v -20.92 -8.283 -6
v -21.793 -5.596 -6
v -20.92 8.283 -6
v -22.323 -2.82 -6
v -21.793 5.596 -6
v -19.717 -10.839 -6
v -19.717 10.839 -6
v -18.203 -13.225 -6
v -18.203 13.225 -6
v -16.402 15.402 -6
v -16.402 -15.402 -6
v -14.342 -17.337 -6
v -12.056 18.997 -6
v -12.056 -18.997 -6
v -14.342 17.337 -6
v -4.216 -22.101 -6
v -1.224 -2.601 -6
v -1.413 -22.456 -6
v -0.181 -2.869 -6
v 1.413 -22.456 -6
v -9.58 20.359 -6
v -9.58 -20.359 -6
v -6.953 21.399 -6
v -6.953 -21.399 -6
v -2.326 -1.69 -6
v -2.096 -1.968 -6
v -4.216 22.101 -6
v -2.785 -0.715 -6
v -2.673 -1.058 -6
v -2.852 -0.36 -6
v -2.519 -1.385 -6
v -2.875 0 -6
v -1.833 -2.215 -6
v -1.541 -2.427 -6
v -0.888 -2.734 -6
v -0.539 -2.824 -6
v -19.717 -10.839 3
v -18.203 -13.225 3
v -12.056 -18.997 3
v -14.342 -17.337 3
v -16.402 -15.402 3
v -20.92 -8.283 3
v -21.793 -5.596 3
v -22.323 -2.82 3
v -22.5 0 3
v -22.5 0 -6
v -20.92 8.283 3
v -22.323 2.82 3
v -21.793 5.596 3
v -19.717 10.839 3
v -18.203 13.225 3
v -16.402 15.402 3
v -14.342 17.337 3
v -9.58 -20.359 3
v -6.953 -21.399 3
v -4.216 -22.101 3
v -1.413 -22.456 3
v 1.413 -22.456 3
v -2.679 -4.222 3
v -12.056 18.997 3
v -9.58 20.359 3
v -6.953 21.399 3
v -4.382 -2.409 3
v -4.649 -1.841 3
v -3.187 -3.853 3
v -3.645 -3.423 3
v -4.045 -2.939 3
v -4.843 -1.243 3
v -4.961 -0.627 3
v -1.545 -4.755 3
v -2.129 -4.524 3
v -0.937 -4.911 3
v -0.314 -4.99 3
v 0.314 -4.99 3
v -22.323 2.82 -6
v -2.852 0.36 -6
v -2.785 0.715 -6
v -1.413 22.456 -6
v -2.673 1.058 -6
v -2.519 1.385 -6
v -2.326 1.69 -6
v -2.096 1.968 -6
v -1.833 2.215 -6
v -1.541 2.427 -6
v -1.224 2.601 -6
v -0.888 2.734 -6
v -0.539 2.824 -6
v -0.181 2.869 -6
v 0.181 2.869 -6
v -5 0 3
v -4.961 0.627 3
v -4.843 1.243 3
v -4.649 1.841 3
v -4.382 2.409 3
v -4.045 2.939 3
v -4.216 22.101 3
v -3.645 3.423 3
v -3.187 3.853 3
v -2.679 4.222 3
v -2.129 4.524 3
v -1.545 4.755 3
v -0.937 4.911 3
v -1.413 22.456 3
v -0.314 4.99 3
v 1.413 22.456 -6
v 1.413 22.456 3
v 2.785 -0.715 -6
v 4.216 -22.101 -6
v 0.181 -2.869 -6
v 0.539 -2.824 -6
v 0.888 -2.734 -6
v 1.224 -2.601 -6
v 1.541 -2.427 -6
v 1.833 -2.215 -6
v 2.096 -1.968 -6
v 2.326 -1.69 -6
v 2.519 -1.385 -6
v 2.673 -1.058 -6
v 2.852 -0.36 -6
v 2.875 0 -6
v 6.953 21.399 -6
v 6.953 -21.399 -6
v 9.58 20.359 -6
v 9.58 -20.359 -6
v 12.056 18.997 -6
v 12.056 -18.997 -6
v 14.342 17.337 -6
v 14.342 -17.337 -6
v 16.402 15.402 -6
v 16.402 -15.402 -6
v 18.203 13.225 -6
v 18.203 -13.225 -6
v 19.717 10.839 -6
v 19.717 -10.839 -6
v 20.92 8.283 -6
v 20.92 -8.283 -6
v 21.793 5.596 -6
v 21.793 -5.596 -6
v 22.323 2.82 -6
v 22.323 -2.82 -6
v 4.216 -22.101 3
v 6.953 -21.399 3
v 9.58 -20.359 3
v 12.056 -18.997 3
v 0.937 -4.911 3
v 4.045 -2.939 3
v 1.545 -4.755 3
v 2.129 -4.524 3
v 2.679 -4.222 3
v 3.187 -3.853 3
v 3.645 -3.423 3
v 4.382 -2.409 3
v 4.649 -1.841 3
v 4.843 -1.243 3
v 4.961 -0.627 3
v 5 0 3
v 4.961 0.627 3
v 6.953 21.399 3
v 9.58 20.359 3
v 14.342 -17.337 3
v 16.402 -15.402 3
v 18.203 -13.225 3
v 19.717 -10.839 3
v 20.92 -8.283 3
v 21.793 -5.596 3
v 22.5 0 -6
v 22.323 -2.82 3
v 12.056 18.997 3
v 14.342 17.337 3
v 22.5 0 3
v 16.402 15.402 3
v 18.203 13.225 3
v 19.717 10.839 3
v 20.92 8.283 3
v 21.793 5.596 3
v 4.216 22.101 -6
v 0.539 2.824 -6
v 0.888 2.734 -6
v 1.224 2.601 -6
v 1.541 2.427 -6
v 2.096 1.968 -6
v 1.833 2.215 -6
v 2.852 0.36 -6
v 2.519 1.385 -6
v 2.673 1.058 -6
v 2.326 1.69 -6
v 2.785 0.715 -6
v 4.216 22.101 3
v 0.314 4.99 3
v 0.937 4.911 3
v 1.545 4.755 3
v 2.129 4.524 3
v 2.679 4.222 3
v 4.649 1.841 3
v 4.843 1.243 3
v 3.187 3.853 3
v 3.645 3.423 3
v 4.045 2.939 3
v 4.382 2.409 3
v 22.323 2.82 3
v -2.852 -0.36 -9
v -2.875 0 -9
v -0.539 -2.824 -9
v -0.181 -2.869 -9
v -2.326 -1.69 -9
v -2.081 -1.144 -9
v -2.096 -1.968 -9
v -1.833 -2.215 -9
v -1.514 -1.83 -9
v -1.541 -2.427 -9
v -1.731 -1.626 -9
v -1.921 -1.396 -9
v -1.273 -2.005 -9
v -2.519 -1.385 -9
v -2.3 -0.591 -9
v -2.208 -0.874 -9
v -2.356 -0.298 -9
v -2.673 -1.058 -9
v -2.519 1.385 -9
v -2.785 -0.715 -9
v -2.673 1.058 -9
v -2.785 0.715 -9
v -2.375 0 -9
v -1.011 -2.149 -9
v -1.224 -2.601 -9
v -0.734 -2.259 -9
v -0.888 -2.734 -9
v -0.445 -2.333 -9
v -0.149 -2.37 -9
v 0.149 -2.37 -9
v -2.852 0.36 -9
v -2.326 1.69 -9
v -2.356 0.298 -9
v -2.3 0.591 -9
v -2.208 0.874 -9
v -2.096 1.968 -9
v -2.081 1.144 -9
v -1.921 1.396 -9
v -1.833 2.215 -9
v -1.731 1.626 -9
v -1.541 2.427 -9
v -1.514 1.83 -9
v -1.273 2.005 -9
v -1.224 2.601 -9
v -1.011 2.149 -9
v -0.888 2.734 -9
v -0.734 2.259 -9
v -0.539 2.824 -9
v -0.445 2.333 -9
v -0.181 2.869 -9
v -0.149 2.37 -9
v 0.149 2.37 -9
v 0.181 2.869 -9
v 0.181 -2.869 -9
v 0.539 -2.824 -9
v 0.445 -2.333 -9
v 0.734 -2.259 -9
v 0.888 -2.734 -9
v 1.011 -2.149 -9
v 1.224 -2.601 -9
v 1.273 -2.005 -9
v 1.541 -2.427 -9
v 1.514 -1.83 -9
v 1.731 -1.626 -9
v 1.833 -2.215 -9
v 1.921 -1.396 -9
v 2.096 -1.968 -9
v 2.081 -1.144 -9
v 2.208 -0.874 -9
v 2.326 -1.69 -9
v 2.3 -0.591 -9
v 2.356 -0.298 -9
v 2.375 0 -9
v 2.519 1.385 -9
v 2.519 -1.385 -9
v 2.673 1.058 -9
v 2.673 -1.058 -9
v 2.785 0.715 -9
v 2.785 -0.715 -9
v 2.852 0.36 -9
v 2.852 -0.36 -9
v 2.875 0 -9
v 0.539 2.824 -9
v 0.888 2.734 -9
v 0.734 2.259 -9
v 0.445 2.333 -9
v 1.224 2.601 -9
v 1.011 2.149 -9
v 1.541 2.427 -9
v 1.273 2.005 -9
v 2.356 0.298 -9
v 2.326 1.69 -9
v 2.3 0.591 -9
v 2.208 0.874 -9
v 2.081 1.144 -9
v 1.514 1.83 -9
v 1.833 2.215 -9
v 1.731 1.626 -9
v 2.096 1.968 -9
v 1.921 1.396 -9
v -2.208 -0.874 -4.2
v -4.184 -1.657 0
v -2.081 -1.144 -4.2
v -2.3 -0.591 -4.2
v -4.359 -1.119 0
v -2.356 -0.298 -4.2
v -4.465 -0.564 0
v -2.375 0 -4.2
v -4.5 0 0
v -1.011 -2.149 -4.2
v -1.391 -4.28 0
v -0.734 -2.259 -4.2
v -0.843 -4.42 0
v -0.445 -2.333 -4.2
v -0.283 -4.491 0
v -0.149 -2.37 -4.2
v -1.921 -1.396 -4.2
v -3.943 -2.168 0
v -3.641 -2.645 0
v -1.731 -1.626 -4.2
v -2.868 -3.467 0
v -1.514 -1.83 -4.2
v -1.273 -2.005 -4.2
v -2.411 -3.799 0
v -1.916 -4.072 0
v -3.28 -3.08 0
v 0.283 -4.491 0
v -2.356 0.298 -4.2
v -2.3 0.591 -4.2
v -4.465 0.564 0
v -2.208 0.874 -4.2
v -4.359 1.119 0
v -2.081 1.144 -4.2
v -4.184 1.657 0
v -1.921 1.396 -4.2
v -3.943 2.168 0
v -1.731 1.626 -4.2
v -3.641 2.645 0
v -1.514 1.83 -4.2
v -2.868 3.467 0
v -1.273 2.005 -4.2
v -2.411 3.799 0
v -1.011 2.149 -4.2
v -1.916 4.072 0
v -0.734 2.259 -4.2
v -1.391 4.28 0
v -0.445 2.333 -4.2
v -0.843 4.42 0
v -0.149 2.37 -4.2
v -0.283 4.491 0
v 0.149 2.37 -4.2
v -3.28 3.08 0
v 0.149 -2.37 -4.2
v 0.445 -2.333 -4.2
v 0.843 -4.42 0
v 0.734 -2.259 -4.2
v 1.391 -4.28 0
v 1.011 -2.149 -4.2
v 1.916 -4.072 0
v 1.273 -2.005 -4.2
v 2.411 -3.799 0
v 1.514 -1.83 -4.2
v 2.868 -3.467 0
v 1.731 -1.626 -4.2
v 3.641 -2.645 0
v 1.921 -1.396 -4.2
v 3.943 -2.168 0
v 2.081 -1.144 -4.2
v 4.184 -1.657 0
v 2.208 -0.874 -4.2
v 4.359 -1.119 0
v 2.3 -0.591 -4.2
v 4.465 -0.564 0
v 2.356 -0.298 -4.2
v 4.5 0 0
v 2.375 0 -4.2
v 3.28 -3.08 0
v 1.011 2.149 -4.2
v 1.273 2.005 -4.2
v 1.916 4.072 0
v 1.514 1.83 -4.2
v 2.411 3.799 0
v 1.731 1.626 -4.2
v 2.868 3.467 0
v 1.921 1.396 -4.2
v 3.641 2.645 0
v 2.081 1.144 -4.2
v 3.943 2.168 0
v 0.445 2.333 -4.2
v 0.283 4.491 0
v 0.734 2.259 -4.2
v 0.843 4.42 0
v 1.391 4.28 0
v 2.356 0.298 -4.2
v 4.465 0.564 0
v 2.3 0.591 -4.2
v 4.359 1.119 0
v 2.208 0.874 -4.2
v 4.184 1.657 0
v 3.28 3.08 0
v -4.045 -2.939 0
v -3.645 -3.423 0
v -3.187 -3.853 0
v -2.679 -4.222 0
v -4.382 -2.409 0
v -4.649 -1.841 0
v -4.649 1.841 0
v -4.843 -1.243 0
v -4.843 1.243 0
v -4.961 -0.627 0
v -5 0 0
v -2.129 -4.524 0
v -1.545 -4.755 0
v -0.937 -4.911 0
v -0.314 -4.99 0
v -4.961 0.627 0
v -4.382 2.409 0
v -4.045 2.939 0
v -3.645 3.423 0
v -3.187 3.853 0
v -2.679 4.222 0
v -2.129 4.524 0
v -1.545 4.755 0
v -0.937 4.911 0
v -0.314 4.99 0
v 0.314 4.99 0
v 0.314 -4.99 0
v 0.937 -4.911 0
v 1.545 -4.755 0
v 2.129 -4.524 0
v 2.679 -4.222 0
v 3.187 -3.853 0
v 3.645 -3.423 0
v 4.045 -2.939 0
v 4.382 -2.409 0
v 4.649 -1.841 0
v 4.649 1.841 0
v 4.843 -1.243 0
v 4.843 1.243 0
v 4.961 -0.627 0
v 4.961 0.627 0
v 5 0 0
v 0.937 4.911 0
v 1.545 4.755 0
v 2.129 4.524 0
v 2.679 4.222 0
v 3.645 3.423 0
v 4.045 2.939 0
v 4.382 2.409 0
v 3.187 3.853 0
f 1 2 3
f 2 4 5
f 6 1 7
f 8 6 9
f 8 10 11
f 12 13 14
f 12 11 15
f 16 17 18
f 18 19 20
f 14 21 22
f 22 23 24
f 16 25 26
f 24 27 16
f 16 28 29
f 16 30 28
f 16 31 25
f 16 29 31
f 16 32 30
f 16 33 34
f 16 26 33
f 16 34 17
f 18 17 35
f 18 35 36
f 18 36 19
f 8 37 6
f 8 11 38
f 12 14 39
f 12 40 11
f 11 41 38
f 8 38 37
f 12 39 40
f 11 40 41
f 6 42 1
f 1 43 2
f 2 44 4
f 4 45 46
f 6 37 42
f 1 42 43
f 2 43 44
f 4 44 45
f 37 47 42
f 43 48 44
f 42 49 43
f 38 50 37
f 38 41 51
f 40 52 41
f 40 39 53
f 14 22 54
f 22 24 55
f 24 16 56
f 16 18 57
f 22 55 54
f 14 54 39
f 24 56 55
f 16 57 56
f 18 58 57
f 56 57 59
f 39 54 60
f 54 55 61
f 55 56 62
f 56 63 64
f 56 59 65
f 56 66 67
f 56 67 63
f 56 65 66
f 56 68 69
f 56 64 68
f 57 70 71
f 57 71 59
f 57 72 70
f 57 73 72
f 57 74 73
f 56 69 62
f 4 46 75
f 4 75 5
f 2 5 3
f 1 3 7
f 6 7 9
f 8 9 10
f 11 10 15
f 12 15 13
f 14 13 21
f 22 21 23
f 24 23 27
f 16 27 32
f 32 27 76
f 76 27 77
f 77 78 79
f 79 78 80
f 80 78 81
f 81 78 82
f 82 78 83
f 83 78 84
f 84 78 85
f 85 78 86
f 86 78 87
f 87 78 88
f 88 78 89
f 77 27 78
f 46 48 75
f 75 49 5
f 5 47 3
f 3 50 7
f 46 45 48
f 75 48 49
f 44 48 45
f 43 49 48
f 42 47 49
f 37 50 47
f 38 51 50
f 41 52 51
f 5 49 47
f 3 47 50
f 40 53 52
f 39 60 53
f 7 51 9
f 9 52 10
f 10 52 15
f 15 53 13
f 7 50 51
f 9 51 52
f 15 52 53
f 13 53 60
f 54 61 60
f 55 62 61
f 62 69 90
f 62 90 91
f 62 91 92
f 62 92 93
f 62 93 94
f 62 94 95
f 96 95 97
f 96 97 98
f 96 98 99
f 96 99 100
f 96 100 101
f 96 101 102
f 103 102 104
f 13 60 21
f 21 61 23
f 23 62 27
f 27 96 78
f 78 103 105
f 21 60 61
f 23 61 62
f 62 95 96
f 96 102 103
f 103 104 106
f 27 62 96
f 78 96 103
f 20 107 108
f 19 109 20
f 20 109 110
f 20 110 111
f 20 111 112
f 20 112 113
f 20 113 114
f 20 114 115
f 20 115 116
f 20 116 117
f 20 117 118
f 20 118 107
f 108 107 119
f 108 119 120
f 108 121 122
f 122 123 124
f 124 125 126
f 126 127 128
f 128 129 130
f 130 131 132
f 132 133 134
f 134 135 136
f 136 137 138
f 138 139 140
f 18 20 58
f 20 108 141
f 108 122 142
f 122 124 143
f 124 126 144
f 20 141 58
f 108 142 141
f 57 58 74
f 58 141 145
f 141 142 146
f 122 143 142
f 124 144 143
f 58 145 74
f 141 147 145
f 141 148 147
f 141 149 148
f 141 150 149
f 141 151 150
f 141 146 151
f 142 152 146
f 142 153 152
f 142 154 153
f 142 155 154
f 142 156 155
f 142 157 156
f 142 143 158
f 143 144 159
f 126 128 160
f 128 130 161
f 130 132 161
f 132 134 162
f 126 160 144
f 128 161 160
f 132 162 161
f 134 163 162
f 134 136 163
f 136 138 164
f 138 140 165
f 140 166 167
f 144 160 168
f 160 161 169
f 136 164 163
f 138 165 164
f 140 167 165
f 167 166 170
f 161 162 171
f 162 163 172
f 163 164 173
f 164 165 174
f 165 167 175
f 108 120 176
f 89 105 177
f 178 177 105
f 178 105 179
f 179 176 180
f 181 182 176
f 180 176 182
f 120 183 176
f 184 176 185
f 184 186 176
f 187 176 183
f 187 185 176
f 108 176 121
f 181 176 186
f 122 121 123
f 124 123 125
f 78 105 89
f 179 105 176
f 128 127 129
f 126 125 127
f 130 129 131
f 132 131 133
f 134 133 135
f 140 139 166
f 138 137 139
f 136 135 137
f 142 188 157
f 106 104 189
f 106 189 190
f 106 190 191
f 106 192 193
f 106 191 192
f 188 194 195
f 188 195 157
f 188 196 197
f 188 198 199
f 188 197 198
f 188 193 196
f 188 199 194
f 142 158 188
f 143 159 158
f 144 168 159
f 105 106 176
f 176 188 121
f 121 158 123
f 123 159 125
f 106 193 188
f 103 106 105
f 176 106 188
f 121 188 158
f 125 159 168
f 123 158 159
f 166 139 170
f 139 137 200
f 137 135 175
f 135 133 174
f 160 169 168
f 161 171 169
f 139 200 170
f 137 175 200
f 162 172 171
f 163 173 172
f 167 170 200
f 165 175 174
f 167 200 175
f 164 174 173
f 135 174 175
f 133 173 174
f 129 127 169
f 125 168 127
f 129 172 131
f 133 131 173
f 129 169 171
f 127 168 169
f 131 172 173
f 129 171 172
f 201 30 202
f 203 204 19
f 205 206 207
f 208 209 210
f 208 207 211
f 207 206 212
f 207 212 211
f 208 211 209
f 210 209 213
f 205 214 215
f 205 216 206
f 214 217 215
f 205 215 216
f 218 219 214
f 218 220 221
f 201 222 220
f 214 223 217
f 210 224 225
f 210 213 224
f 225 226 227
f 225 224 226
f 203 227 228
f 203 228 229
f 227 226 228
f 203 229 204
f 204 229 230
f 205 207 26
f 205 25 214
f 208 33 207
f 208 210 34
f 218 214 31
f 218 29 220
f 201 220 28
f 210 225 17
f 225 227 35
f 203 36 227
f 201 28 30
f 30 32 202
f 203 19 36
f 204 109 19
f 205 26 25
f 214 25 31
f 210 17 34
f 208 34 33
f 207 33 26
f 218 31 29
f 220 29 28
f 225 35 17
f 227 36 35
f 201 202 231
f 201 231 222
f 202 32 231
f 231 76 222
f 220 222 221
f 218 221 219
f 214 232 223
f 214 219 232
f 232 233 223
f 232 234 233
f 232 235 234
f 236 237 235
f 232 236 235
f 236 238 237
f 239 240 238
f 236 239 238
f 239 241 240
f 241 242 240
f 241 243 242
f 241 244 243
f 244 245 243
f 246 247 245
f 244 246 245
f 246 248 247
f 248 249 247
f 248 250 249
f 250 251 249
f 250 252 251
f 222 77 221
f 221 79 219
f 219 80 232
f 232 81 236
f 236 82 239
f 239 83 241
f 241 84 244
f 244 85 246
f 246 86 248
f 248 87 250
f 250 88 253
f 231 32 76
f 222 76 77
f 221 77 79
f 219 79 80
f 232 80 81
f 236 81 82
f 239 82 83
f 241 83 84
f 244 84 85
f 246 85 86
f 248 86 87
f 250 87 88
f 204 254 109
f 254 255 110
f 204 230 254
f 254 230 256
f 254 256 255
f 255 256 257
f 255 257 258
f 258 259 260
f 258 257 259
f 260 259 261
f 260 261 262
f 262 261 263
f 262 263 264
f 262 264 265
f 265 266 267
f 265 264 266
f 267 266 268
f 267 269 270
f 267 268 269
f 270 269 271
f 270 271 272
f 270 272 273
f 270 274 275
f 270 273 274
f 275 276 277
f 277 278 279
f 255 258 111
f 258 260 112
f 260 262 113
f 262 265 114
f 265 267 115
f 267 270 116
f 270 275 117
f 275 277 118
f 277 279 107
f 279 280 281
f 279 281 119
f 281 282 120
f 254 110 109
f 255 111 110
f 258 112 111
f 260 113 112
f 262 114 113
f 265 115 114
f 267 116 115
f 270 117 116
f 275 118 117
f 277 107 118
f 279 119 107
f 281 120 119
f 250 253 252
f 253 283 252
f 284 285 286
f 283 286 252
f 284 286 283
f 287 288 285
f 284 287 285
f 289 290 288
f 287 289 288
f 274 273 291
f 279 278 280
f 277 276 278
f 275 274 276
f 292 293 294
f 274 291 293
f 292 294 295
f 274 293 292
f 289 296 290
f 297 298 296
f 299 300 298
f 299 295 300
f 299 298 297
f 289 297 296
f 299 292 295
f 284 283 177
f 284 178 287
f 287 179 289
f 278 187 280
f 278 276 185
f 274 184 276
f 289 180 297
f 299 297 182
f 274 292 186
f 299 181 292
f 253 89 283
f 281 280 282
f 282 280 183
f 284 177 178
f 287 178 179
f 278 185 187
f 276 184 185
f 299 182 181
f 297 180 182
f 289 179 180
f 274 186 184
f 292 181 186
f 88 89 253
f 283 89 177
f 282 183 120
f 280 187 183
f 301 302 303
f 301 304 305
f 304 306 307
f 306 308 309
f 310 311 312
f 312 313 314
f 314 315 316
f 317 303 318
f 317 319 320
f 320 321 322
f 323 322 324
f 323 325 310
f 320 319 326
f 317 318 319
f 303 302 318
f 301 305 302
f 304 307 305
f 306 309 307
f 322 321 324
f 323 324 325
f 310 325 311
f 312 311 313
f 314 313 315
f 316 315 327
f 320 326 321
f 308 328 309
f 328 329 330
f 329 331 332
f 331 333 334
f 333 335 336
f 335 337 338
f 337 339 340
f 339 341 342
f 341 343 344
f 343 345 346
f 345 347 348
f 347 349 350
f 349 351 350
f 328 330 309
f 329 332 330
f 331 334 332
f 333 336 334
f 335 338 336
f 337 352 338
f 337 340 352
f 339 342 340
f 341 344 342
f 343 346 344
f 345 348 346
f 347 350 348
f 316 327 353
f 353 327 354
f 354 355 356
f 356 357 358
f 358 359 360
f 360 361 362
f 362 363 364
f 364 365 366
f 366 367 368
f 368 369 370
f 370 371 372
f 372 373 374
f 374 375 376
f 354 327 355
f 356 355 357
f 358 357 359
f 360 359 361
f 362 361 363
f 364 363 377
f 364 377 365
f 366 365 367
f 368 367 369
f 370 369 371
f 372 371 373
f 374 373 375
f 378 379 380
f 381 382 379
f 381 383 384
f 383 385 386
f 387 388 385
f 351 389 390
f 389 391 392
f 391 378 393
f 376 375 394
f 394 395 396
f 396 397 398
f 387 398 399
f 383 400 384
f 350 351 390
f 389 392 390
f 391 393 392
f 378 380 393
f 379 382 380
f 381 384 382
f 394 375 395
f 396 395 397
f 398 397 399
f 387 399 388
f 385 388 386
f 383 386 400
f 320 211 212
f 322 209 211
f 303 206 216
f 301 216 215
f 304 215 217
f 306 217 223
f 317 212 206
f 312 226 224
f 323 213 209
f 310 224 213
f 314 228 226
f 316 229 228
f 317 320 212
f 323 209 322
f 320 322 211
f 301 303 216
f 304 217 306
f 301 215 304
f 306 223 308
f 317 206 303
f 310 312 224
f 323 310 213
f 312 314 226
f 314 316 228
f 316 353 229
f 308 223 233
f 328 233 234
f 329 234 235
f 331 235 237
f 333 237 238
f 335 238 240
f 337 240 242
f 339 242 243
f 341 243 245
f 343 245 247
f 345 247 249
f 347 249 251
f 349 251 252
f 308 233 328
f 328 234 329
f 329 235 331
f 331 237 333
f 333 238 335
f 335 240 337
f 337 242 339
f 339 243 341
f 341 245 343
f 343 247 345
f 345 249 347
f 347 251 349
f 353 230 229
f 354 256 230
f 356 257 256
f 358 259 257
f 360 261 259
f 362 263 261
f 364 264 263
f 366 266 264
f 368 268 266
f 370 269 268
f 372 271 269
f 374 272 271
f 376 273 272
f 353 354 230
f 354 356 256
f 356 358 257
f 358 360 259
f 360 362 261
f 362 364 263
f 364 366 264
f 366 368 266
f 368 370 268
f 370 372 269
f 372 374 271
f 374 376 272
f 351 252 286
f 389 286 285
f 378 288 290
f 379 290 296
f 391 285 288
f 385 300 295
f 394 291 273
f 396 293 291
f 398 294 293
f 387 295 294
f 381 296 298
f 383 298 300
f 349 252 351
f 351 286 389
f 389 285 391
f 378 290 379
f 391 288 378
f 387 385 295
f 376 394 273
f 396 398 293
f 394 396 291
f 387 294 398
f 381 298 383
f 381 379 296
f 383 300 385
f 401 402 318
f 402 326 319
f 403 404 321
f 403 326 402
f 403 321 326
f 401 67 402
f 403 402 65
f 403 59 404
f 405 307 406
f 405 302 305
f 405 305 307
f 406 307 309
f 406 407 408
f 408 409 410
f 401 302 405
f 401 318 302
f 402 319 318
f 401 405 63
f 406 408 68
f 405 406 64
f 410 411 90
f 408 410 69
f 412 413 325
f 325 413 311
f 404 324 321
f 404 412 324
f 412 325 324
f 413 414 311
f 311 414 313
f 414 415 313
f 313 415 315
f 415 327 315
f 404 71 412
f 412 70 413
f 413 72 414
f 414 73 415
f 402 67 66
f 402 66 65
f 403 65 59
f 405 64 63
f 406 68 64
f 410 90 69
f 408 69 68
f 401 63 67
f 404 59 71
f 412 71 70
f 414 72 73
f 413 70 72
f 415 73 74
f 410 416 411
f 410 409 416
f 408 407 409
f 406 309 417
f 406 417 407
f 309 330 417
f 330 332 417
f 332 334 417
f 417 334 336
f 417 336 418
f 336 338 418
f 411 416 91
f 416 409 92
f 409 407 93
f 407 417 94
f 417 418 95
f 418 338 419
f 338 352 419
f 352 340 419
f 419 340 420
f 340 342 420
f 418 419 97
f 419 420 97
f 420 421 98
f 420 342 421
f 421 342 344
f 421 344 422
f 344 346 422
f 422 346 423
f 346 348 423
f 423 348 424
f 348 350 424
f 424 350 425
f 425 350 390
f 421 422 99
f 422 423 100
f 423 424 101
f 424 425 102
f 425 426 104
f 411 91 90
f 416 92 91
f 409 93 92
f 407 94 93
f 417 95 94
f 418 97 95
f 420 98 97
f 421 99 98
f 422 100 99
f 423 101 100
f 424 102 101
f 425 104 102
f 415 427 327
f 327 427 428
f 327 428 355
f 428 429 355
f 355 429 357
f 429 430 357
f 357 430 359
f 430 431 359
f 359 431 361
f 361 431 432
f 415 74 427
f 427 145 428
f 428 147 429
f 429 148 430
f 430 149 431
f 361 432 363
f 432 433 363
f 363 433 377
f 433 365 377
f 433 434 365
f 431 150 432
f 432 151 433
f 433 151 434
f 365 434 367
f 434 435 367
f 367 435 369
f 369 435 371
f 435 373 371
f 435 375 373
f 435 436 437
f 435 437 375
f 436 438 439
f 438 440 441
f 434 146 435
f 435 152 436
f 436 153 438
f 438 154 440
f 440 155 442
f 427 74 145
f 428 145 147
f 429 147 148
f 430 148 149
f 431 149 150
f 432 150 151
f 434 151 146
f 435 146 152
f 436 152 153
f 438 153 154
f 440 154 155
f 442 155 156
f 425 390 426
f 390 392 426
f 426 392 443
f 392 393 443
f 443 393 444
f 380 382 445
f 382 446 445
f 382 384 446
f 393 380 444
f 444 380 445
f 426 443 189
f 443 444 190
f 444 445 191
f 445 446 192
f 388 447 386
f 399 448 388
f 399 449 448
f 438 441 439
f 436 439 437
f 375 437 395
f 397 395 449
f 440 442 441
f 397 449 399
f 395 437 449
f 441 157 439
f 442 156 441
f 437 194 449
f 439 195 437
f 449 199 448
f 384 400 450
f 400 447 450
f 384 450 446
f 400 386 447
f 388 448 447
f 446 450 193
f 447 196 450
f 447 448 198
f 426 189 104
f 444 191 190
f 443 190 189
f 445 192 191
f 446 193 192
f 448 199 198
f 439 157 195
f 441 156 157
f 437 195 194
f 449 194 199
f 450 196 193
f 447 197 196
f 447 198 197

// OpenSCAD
$fn = 50;

difference() {
	union() {
		translate(v = [0, 0, -6.0]) {
			cylinder(h = 9, r = 22.5);
		}
		#translate(v = [0, 0, -9.0]) {
			cylinder(h = 9, r = 2.875);
		}
	}
	union() {
		translate(v = [0, 0, 0]) {
			rotate(a = [0, 0, 0]) {
				difference() {
					union() {
						translate(v = [0, 0, -9.0]) {
							cylinder(h = 9, r = 2.25);
						}
						translate(v = [0, 0, -4.2]) {
							cylinder(h = 4.2, r1 = 2.375, r2 = 4.5);
						}
						translate(v = [0, 0, -9.0]) {
							cylinder(h = 9, r = 2.375);
						}
						translate(v = [0, 0, -9.0]) {
							cylinder(h = 9, r = 2.25);
						}
					}
					union();
				}
			}
		}
		#cylinder(h = 3, r = 5.0);
	}
}
